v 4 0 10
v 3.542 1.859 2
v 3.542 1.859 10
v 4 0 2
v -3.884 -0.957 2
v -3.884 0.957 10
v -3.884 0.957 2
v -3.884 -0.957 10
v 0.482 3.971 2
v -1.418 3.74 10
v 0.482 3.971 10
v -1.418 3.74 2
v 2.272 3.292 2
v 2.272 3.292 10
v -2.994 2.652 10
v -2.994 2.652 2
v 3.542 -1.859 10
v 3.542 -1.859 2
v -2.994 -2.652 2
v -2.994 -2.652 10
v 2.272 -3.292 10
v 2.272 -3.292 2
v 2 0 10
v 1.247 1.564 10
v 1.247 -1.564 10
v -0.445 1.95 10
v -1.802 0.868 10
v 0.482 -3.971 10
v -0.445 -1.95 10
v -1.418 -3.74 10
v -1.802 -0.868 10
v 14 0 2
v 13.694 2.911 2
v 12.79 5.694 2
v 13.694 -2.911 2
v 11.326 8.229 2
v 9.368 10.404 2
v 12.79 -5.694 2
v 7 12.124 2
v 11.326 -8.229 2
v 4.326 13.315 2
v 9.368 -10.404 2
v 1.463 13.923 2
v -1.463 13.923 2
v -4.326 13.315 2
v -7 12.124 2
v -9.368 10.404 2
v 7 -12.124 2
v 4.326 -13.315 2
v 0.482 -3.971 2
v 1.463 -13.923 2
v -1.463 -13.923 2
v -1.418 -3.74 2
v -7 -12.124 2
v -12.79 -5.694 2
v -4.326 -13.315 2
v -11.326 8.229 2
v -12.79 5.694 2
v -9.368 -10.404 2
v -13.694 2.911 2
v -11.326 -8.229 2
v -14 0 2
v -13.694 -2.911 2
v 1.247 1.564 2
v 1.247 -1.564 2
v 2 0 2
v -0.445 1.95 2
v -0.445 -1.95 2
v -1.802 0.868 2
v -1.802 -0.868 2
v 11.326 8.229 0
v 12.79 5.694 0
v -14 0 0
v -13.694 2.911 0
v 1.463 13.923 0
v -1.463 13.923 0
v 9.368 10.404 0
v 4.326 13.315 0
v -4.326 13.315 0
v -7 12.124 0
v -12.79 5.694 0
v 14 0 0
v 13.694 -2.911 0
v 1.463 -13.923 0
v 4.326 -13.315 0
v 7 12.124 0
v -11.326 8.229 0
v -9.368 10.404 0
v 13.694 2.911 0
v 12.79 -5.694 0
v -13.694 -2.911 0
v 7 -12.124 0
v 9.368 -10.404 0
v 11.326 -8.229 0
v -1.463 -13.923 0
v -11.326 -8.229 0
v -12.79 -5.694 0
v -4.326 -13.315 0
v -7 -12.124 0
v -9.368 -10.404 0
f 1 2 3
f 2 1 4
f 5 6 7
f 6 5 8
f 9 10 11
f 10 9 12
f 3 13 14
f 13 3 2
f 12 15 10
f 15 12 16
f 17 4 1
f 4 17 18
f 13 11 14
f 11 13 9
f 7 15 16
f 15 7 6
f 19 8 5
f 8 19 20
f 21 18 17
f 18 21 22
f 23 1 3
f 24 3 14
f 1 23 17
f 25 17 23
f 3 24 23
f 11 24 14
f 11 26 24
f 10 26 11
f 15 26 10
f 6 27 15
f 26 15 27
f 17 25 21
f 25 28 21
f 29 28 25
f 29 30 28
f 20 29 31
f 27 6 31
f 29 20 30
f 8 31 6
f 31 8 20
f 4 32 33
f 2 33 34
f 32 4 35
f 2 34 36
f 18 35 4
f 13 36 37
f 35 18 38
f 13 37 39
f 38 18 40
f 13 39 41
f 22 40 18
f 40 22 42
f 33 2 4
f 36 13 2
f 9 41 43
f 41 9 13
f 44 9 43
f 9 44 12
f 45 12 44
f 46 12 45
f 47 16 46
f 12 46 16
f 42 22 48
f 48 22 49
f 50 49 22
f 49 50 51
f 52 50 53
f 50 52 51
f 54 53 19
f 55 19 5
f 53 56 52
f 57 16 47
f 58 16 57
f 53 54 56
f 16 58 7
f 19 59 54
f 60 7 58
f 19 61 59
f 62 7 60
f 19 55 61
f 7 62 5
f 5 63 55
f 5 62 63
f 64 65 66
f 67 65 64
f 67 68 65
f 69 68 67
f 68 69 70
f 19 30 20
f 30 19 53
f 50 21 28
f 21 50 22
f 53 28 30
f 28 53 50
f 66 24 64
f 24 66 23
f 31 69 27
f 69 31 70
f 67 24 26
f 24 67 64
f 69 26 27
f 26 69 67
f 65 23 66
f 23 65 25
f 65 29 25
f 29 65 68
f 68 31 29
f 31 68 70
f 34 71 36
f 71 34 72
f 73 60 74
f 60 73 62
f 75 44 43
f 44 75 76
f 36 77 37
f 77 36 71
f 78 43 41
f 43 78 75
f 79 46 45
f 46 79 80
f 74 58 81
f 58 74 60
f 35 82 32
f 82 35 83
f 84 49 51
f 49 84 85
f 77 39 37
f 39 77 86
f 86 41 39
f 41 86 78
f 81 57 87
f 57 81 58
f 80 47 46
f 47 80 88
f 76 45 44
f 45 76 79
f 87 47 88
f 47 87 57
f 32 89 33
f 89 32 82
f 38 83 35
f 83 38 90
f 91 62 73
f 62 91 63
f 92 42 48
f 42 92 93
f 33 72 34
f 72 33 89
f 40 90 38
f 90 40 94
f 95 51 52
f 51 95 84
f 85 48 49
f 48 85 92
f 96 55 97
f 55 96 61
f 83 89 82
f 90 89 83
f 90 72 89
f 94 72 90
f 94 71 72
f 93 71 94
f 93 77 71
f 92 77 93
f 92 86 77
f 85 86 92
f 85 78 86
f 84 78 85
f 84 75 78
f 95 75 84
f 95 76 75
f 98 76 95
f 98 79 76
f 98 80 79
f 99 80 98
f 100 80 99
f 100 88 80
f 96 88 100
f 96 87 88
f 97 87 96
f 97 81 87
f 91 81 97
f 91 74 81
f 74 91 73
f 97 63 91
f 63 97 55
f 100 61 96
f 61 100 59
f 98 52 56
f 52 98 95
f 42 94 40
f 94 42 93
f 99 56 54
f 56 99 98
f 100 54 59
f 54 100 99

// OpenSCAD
difference()
{
    translate([0,0,2]) cylinder(d=8,h=8);
    translate([0,0,2]) cylinder(d=4,h=10);
}
cylinder(d=28,h=2);
